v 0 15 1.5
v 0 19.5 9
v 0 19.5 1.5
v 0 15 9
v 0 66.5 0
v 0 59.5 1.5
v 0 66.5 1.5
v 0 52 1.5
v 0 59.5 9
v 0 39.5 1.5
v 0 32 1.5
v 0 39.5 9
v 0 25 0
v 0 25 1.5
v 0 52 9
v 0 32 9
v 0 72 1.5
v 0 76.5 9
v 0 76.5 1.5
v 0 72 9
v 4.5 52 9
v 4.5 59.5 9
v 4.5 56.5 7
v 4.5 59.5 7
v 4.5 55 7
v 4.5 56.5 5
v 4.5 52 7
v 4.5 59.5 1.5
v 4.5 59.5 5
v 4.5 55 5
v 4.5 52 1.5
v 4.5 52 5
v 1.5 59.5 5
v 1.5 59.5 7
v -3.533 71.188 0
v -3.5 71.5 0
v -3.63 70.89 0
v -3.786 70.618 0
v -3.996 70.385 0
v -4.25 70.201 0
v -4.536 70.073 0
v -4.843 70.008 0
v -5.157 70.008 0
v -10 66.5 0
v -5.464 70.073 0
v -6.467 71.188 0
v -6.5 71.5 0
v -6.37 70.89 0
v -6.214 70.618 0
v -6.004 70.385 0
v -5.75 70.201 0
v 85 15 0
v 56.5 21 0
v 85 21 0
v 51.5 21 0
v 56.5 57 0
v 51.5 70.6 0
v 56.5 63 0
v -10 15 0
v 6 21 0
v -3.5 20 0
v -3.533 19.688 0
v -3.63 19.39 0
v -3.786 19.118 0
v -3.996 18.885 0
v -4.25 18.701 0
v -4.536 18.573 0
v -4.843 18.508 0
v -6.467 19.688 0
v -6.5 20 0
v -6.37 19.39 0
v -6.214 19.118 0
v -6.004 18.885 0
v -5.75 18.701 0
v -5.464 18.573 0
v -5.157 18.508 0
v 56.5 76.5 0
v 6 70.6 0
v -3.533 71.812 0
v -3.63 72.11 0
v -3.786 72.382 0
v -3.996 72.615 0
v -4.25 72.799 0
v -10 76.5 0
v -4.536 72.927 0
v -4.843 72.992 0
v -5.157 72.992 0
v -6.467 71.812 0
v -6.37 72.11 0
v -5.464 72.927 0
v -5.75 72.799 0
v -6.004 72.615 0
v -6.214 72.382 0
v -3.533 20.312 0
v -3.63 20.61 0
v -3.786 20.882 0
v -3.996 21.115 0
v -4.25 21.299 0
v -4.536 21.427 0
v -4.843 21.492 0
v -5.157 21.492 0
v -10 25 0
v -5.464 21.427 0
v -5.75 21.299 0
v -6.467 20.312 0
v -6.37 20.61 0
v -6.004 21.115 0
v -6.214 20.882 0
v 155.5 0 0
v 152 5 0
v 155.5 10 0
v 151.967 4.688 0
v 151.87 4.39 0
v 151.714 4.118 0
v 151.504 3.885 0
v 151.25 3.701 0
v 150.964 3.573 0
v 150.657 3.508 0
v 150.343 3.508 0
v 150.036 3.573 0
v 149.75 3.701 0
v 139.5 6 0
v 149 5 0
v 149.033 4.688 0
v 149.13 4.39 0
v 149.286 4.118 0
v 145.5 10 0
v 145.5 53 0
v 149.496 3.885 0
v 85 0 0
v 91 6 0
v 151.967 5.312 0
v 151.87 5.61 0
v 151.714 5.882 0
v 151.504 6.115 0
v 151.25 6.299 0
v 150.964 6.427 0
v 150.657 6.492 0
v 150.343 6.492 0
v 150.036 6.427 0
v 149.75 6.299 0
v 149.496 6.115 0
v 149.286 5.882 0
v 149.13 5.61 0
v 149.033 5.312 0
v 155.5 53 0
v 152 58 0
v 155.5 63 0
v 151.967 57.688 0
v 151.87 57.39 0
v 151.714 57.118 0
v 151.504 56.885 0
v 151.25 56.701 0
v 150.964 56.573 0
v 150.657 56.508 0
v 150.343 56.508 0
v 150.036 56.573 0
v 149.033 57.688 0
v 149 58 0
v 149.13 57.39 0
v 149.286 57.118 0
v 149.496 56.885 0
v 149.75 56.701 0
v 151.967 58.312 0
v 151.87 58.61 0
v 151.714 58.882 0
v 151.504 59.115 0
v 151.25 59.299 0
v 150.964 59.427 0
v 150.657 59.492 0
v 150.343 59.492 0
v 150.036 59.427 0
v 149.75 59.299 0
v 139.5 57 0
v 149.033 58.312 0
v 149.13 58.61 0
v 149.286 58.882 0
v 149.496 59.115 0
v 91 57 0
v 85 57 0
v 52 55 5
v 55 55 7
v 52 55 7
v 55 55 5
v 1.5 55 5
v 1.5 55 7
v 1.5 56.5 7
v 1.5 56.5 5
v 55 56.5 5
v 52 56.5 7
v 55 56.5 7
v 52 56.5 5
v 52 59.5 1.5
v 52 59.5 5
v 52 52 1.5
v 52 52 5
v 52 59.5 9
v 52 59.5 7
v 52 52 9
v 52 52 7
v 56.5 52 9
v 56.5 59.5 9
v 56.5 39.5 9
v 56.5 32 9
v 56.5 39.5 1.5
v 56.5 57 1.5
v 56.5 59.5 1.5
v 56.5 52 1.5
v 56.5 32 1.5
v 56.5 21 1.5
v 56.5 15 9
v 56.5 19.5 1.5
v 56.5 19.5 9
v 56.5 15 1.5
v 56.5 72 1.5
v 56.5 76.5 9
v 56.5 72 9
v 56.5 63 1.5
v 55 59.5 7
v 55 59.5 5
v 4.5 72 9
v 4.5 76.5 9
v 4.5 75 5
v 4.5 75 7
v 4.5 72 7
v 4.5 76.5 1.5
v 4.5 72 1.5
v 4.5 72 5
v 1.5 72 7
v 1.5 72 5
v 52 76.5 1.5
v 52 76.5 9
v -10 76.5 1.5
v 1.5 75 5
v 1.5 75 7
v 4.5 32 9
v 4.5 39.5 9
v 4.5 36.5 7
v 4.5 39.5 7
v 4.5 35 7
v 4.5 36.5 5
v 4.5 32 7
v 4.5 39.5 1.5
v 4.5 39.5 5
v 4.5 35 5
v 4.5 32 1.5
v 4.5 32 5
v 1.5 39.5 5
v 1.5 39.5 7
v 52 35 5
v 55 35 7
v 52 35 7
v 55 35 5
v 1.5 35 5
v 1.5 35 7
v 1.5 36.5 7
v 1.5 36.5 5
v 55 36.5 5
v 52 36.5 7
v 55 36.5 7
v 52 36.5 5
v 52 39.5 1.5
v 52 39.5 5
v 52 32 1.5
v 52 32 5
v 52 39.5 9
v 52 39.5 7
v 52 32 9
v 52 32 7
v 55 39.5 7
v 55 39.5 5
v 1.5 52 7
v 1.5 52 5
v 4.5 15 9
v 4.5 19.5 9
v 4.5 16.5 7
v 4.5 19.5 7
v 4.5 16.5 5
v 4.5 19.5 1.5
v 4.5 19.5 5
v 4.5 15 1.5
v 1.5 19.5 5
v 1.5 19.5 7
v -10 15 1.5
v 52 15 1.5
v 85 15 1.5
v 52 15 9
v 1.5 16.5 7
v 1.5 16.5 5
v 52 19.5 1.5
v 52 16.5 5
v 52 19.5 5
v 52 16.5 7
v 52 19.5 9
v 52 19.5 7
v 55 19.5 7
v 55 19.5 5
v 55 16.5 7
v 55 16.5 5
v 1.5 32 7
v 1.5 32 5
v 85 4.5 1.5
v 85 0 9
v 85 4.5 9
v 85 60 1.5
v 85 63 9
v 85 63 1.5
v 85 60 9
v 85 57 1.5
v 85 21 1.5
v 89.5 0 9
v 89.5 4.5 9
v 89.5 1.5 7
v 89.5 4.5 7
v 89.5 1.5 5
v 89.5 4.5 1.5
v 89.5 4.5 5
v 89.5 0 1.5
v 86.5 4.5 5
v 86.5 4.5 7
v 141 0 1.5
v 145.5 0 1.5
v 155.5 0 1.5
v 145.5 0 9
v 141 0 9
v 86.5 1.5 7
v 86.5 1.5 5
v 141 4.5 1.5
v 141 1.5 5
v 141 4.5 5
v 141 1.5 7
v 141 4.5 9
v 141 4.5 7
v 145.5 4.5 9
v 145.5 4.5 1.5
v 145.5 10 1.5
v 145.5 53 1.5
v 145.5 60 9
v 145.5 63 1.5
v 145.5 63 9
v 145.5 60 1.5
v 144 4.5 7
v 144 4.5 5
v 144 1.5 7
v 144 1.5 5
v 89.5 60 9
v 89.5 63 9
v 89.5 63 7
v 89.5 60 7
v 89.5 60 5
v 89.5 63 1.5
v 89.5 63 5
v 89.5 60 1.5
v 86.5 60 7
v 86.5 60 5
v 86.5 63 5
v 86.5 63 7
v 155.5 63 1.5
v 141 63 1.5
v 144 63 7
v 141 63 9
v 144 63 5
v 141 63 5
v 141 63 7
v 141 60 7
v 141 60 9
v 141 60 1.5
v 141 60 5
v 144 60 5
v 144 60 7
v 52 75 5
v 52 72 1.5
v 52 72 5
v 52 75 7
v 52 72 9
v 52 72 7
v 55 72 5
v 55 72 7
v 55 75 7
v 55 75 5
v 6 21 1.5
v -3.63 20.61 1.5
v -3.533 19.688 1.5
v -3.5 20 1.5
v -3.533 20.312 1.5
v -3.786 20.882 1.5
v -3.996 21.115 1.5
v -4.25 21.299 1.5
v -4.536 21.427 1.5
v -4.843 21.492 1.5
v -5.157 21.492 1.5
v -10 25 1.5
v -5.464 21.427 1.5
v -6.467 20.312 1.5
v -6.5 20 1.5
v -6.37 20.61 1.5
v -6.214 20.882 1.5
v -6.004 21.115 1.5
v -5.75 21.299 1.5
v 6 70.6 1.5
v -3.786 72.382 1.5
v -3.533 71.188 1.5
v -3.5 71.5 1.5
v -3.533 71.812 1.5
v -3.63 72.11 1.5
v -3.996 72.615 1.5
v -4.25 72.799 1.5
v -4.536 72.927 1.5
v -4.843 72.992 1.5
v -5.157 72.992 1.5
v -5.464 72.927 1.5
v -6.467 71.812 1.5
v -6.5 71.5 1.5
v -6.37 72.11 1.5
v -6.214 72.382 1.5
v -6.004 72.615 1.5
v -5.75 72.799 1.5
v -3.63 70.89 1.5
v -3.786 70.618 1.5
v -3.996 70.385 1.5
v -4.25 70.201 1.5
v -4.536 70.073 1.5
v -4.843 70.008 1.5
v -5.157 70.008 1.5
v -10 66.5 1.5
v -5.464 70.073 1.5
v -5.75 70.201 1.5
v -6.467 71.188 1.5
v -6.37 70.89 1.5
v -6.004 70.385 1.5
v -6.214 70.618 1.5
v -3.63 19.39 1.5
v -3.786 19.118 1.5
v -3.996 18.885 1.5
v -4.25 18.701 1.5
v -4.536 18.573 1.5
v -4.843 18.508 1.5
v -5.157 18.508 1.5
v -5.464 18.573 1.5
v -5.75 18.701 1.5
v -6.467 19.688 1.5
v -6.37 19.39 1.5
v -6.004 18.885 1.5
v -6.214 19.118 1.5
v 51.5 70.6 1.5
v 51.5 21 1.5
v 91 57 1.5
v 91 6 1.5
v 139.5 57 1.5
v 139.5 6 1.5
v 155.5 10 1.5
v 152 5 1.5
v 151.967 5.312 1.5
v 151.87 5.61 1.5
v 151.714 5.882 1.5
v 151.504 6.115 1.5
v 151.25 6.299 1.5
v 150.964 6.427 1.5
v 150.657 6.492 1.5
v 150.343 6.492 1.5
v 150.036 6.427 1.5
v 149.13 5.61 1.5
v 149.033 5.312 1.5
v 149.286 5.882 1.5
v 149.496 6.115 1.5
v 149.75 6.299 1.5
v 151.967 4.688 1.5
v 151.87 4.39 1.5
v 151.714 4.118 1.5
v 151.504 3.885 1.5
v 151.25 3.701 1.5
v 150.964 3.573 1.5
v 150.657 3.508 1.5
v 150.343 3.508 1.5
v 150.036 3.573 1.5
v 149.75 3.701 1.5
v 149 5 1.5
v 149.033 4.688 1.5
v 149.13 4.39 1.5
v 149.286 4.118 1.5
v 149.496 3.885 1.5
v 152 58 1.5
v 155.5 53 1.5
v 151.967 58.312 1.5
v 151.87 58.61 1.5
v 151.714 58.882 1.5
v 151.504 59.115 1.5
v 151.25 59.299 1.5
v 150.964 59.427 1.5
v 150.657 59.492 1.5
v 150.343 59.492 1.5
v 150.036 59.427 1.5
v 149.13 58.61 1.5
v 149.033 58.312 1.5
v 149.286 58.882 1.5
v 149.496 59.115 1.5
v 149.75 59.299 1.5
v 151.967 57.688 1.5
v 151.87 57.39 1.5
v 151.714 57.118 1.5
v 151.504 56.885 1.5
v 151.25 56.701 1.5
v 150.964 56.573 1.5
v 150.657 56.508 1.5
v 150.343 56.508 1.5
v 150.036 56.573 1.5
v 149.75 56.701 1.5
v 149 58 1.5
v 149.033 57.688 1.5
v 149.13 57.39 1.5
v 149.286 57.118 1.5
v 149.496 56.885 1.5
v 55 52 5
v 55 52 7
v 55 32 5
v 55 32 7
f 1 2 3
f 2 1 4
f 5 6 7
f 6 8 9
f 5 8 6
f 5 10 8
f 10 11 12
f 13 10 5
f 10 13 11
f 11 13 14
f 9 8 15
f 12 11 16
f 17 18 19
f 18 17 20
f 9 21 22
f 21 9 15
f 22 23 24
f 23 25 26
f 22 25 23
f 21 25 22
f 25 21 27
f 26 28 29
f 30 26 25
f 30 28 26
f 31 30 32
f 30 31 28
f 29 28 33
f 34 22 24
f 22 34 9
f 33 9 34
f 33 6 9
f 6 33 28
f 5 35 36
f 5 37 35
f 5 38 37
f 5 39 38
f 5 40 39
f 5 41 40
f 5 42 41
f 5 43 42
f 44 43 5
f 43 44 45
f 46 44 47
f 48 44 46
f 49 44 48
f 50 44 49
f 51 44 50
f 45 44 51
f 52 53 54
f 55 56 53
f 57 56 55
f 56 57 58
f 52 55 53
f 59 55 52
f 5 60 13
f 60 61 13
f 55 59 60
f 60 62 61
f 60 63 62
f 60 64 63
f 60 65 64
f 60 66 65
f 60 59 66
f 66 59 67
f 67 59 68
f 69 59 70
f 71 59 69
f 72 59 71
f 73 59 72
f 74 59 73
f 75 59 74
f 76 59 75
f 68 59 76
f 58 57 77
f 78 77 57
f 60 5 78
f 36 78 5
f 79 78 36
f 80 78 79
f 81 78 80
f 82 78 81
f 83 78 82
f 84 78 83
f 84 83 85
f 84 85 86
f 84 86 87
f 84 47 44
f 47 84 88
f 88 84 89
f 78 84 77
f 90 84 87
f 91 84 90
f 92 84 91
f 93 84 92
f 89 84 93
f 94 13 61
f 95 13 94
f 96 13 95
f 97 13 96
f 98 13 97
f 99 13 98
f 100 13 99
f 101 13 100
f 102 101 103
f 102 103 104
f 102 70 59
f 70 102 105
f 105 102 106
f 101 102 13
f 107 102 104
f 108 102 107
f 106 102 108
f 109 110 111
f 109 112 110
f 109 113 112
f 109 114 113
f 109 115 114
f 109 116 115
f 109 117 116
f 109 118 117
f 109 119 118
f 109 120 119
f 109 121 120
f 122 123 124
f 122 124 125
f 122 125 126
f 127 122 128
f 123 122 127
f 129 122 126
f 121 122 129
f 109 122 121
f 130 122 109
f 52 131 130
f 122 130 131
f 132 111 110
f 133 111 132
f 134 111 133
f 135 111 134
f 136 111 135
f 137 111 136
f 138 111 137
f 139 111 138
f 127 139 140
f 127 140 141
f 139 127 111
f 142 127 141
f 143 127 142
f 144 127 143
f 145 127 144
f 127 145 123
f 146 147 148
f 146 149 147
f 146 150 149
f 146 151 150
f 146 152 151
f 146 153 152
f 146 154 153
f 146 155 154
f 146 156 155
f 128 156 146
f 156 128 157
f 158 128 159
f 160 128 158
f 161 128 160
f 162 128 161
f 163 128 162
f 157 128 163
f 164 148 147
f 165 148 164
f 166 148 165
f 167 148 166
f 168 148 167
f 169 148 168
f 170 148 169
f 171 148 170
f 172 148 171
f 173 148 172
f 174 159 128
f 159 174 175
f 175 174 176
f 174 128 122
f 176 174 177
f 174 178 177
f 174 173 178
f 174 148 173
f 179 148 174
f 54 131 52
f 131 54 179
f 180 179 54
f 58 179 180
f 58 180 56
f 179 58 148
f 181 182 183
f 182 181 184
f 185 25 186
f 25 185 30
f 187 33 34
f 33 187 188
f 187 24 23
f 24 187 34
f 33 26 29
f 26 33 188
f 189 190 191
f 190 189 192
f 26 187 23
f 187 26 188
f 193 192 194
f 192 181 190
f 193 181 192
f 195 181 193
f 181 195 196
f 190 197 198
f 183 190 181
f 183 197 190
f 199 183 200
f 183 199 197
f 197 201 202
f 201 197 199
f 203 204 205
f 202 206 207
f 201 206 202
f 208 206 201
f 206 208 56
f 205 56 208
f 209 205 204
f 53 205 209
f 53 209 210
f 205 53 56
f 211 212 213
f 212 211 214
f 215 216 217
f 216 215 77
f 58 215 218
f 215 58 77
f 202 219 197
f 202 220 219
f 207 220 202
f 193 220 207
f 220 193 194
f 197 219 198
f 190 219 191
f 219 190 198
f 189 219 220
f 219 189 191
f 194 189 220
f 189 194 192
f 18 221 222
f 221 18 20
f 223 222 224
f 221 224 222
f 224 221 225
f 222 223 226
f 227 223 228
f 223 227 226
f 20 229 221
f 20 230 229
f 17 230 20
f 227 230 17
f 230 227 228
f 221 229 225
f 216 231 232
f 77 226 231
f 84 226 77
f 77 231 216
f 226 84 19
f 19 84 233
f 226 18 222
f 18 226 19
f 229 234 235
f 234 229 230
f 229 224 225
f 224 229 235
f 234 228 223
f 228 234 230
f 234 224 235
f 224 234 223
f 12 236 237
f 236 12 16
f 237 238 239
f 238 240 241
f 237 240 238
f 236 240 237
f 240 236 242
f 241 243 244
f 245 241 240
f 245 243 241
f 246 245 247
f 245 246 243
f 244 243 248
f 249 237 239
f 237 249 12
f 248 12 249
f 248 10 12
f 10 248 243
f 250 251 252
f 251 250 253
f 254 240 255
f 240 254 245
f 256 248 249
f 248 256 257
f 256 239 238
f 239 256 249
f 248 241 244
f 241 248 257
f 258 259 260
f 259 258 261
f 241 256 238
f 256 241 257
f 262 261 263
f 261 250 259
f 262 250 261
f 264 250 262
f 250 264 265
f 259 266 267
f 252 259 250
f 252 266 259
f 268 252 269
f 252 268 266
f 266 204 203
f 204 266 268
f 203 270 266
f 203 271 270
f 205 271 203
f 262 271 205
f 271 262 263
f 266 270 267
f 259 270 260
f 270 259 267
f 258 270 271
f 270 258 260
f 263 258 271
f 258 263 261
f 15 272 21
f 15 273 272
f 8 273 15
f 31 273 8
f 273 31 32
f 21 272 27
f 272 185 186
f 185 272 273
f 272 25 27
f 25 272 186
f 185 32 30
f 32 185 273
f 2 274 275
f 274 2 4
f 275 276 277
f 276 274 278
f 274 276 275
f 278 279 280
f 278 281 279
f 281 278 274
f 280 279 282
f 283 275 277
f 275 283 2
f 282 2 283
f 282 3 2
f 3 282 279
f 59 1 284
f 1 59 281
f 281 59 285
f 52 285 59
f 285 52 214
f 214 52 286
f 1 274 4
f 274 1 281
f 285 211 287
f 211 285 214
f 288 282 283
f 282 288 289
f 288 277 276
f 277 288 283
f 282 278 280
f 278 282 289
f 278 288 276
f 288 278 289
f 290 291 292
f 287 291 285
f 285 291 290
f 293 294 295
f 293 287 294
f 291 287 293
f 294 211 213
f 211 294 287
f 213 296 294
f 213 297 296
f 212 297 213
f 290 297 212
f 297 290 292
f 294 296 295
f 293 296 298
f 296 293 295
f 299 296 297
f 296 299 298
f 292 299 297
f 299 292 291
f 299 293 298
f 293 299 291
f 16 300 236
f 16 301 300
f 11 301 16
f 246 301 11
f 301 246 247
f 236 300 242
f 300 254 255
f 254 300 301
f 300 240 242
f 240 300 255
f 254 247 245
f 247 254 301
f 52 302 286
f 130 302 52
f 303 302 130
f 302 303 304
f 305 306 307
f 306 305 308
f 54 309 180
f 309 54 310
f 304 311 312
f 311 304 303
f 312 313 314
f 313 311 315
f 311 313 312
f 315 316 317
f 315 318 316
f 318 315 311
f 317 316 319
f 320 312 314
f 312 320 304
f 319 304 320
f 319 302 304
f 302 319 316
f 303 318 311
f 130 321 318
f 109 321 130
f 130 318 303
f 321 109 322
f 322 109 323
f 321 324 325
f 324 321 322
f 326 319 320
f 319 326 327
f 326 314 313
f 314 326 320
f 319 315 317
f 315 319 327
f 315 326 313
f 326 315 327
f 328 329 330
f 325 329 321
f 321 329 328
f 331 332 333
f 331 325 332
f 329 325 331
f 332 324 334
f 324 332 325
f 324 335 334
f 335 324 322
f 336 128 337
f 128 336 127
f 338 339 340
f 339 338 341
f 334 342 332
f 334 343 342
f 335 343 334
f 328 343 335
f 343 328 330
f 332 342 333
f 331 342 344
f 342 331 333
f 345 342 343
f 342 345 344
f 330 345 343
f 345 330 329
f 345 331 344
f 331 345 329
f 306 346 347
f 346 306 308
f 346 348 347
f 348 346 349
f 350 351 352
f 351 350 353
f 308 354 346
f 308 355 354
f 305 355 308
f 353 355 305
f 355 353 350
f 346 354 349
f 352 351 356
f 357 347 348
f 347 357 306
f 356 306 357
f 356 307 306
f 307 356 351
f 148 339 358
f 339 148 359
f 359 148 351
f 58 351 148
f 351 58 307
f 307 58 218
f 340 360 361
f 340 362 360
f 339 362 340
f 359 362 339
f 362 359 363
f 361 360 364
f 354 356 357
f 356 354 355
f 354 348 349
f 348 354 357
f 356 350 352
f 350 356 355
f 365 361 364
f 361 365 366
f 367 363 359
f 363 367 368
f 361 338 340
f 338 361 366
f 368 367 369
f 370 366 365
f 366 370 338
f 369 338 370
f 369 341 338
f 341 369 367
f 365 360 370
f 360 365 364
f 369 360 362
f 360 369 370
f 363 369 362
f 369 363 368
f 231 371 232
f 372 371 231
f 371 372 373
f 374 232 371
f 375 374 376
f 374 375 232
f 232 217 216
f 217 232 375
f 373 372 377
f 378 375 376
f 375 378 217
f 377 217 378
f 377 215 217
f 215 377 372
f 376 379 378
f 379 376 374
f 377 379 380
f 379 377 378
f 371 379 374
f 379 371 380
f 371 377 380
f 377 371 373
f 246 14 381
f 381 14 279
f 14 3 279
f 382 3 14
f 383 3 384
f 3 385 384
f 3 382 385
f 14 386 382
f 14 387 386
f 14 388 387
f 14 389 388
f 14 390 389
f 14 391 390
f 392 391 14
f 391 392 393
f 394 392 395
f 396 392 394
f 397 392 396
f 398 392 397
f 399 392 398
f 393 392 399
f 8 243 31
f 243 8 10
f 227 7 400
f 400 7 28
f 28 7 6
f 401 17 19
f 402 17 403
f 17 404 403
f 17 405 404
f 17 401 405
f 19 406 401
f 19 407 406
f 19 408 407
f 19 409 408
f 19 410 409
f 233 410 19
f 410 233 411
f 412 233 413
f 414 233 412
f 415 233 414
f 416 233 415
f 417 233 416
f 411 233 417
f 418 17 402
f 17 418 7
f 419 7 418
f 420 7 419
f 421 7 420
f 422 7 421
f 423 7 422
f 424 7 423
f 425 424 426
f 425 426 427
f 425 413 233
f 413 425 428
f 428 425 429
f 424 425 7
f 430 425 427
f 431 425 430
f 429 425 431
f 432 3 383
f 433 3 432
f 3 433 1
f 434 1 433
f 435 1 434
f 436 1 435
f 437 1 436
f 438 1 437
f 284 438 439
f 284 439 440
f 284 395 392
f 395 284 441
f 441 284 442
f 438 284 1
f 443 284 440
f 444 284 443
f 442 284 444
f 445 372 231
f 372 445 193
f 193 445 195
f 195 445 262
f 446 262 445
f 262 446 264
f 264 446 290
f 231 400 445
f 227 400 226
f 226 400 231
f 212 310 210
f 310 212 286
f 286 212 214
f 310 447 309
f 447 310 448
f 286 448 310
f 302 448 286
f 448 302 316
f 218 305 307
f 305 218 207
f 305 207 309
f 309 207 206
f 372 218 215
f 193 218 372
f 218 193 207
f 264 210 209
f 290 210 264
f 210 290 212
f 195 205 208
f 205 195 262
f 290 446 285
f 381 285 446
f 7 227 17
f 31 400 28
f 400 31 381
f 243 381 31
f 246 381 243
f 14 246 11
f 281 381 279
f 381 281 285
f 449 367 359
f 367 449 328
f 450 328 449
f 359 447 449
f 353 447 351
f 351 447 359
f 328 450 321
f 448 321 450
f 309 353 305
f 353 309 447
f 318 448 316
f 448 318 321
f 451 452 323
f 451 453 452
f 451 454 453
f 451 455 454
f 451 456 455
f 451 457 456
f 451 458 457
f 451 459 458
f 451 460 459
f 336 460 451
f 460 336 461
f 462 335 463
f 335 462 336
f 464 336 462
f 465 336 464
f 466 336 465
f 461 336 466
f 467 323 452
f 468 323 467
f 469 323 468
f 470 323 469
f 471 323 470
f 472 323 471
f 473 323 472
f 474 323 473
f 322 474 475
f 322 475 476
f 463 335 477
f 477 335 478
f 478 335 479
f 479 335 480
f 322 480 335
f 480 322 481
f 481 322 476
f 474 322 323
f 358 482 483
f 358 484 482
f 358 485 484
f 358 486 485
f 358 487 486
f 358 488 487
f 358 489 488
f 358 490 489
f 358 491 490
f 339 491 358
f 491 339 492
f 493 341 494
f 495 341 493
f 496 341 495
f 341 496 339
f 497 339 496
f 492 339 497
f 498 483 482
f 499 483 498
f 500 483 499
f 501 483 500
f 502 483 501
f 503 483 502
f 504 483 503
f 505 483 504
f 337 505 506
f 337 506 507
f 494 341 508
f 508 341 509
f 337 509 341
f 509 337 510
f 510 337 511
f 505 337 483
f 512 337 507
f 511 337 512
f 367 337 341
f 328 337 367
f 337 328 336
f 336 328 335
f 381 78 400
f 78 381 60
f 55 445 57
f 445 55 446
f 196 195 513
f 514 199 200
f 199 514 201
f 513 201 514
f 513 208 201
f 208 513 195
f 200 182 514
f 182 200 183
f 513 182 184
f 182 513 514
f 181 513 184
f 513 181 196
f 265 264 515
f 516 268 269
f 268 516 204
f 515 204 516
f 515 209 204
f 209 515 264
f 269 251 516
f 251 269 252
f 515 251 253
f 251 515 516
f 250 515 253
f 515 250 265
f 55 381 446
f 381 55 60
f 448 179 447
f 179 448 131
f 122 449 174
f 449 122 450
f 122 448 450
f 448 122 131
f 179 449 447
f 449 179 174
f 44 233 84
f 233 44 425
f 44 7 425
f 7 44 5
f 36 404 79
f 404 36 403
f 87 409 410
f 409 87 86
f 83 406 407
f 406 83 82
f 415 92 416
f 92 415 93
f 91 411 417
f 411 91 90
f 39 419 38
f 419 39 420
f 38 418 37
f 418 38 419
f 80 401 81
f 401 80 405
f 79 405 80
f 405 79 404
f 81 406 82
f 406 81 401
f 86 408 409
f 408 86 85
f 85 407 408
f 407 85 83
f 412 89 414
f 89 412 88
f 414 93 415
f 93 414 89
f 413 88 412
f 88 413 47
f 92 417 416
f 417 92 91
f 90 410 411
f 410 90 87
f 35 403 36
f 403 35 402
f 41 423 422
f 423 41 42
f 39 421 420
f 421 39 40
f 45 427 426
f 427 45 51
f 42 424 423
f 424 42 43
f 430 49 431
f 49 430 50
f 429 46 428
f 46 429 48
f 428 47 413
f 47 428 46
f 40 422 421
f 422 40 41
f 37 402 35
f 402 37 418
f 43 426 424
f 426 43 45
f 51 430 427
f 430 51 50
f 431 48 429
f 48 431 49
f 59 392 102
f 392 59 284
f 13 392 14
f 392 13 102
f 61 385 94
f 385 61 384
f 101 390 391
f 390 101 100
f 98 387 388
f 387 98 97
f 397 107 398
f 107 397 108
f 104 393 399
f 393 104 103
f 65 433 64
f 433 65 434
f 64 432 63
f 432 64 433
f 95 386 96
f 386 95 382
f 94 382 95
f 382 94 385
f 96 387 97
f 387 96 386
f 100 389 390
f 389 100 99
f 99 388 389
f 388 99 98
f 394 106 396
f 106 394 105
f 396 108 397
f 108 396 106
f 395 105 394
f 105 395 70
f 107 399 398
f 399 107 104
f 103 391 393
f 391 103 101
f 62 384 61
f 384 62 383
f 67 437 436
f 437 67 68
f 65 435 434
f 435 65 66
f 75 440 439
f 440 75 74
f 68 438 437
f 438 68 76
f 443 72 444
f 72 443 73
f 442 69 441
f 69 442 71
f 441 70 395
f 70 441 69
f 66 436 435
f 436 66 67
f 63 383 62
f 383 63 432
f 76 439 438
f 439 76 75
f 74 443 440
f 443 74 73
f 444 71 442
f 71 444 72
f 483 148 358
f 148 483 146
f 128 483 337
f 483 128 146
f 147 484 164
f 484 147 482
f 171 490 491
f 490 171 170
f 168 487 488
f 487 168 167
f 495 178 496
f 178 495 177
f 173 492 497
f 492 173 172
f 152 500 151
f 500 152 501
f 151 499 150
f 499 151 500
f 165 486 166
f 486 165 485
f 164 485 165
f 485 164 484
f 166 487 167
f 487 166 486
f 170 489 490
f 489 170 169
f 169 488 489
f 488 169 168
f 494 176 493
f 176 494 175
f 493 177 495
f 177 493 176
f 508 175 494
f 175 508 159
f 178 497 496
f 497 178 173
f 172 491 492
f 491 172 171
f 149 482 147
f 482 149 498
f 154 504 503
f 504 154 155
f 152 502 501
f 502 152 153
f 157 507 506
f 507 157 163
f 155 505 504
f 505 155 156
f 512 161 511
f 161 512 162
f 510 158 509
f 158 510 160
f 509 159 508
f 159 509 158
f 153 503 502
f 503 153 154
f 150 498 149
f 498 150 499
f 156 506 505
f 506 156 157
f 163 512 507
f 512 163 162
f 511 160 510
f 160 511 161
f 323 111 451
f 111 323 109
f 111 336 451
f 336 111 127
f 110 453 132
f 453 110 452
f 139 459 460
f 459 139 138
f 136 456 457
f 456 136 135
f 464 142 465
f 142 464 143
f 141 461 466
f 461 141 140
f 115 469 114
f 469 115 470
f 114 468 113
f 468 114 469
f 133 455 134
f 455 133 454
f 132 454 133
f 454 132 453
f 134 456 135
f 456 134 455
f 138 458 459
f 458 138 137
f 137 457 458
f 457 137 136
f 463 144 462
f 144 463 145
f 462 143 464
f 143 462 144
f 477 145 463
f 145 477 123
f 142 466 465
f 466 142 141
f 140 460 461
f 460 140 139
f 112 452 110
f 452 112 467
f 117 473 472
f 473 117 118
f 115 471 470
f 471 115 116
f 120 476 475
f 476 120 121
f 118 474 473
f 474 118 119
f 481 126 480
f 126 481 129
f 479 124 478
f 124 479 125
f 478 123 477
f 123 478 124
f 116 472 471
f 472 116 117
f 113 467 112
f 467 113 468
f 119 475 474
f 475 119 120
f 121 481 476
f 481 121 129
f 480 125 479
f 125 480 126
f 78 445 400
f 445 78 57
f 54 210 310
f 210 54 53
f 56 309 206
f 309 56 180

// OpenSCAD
Wall=6;
Thickness=1.5;
Height=20*2+18+3.5;
Length=145.5;
$fs = 0.1;

//Relays
module relay(xx, yy) {
    translate([xx,yy,0]) difference () {cube([4.5,4.5,9]); translate([1.5,1.5,5]) cube([3,3,2]);}
    translate([xx+53-1,yy,0]) difference () {cube([4.5,4.5,9]); translate([0,1.5,5]) cube([3,3,2]);}
    translate([xx,yy+18-1,0]) difference () {cube([4.5,4.5,9]); translate([1.5,0,5]) cube([3,3,2]);}
    translate([xx+53-1,yy+18-1,0]) difference () {cube([4.5,4.5,9]); translate([0,0,5]) cube([3,3,2]);}
    translate([xx,yy,0]) difference () {cube([53+3.5,18+3.5,1.5]); translate([Wall,Wall,0]) cube([53+4.5-Wall*2,18+1.5-Wall*2,1.5]);}
}

difference () {
    union () {
        relay(0,15+20*2);
        relay(0,15+20);
        relay(0,15+0);
    }
    #translate([Wall,22,0]) cube([53-7.5,18*2.7,Thickness]);   
}

module pi(xx, yy) {
    translate([xx,yy,0]) difference () {cube([4.5,4.5,9]); translate([1.5,1.5,5]) cube([3,3,2]);}
    translate([xx+56,yy,0]) difference () {cube([4.5,4.5,9]); translate([0,1.5,5]) cube([3,3,2]);}
    translate([xx,yy+61.5-1.5,0]) difference () {cube([4.5,3,9]); translate([1.5,0,5]) cube([3,5,2]);}
    translate([xx+56,yy+61.5-1.5,0]) difference () {cube([4.5,3,9]); translate([0,0,5]) cube([3,5,2]);}
    translate([xx,yy,0]) difference () {cube([56+4.5,61.5+1.5,1.5]); translate([Wall,Wall,0]) cube([56+4.5-Wall*2,61.5+1.5-Wall*2,1.5]);}
}

pi(85,0);

//Join Them!
translate([52, 15, 0]) cube([35,Wall,Thickness]);
translate([52, 57, 0]) cube([35,Wall,Thickness]);

//Screws
translate([-10, 66.5, 0]) difference () {cube([10,10,Thickness]); translate([5,5,0]) cylinder(1.5,1.5,Thickness);}
translate([-10, 15, 0]) difference () {cube([10,10,Thickness]); translate([5,5,0]) cylinder(1.5,1.5,Thickness);}
translate([145.5, 53, 0]) difference () {cube([10,10,Thickness]); translate([5,5,0]) cylinder(1.5,1.5,Thickness);}
translate([145.5, 0, 0]) difference () {cube([10,10,Thickness]); translate([5,5,0]) cylinder(1.5,1.5,Thickness);}
